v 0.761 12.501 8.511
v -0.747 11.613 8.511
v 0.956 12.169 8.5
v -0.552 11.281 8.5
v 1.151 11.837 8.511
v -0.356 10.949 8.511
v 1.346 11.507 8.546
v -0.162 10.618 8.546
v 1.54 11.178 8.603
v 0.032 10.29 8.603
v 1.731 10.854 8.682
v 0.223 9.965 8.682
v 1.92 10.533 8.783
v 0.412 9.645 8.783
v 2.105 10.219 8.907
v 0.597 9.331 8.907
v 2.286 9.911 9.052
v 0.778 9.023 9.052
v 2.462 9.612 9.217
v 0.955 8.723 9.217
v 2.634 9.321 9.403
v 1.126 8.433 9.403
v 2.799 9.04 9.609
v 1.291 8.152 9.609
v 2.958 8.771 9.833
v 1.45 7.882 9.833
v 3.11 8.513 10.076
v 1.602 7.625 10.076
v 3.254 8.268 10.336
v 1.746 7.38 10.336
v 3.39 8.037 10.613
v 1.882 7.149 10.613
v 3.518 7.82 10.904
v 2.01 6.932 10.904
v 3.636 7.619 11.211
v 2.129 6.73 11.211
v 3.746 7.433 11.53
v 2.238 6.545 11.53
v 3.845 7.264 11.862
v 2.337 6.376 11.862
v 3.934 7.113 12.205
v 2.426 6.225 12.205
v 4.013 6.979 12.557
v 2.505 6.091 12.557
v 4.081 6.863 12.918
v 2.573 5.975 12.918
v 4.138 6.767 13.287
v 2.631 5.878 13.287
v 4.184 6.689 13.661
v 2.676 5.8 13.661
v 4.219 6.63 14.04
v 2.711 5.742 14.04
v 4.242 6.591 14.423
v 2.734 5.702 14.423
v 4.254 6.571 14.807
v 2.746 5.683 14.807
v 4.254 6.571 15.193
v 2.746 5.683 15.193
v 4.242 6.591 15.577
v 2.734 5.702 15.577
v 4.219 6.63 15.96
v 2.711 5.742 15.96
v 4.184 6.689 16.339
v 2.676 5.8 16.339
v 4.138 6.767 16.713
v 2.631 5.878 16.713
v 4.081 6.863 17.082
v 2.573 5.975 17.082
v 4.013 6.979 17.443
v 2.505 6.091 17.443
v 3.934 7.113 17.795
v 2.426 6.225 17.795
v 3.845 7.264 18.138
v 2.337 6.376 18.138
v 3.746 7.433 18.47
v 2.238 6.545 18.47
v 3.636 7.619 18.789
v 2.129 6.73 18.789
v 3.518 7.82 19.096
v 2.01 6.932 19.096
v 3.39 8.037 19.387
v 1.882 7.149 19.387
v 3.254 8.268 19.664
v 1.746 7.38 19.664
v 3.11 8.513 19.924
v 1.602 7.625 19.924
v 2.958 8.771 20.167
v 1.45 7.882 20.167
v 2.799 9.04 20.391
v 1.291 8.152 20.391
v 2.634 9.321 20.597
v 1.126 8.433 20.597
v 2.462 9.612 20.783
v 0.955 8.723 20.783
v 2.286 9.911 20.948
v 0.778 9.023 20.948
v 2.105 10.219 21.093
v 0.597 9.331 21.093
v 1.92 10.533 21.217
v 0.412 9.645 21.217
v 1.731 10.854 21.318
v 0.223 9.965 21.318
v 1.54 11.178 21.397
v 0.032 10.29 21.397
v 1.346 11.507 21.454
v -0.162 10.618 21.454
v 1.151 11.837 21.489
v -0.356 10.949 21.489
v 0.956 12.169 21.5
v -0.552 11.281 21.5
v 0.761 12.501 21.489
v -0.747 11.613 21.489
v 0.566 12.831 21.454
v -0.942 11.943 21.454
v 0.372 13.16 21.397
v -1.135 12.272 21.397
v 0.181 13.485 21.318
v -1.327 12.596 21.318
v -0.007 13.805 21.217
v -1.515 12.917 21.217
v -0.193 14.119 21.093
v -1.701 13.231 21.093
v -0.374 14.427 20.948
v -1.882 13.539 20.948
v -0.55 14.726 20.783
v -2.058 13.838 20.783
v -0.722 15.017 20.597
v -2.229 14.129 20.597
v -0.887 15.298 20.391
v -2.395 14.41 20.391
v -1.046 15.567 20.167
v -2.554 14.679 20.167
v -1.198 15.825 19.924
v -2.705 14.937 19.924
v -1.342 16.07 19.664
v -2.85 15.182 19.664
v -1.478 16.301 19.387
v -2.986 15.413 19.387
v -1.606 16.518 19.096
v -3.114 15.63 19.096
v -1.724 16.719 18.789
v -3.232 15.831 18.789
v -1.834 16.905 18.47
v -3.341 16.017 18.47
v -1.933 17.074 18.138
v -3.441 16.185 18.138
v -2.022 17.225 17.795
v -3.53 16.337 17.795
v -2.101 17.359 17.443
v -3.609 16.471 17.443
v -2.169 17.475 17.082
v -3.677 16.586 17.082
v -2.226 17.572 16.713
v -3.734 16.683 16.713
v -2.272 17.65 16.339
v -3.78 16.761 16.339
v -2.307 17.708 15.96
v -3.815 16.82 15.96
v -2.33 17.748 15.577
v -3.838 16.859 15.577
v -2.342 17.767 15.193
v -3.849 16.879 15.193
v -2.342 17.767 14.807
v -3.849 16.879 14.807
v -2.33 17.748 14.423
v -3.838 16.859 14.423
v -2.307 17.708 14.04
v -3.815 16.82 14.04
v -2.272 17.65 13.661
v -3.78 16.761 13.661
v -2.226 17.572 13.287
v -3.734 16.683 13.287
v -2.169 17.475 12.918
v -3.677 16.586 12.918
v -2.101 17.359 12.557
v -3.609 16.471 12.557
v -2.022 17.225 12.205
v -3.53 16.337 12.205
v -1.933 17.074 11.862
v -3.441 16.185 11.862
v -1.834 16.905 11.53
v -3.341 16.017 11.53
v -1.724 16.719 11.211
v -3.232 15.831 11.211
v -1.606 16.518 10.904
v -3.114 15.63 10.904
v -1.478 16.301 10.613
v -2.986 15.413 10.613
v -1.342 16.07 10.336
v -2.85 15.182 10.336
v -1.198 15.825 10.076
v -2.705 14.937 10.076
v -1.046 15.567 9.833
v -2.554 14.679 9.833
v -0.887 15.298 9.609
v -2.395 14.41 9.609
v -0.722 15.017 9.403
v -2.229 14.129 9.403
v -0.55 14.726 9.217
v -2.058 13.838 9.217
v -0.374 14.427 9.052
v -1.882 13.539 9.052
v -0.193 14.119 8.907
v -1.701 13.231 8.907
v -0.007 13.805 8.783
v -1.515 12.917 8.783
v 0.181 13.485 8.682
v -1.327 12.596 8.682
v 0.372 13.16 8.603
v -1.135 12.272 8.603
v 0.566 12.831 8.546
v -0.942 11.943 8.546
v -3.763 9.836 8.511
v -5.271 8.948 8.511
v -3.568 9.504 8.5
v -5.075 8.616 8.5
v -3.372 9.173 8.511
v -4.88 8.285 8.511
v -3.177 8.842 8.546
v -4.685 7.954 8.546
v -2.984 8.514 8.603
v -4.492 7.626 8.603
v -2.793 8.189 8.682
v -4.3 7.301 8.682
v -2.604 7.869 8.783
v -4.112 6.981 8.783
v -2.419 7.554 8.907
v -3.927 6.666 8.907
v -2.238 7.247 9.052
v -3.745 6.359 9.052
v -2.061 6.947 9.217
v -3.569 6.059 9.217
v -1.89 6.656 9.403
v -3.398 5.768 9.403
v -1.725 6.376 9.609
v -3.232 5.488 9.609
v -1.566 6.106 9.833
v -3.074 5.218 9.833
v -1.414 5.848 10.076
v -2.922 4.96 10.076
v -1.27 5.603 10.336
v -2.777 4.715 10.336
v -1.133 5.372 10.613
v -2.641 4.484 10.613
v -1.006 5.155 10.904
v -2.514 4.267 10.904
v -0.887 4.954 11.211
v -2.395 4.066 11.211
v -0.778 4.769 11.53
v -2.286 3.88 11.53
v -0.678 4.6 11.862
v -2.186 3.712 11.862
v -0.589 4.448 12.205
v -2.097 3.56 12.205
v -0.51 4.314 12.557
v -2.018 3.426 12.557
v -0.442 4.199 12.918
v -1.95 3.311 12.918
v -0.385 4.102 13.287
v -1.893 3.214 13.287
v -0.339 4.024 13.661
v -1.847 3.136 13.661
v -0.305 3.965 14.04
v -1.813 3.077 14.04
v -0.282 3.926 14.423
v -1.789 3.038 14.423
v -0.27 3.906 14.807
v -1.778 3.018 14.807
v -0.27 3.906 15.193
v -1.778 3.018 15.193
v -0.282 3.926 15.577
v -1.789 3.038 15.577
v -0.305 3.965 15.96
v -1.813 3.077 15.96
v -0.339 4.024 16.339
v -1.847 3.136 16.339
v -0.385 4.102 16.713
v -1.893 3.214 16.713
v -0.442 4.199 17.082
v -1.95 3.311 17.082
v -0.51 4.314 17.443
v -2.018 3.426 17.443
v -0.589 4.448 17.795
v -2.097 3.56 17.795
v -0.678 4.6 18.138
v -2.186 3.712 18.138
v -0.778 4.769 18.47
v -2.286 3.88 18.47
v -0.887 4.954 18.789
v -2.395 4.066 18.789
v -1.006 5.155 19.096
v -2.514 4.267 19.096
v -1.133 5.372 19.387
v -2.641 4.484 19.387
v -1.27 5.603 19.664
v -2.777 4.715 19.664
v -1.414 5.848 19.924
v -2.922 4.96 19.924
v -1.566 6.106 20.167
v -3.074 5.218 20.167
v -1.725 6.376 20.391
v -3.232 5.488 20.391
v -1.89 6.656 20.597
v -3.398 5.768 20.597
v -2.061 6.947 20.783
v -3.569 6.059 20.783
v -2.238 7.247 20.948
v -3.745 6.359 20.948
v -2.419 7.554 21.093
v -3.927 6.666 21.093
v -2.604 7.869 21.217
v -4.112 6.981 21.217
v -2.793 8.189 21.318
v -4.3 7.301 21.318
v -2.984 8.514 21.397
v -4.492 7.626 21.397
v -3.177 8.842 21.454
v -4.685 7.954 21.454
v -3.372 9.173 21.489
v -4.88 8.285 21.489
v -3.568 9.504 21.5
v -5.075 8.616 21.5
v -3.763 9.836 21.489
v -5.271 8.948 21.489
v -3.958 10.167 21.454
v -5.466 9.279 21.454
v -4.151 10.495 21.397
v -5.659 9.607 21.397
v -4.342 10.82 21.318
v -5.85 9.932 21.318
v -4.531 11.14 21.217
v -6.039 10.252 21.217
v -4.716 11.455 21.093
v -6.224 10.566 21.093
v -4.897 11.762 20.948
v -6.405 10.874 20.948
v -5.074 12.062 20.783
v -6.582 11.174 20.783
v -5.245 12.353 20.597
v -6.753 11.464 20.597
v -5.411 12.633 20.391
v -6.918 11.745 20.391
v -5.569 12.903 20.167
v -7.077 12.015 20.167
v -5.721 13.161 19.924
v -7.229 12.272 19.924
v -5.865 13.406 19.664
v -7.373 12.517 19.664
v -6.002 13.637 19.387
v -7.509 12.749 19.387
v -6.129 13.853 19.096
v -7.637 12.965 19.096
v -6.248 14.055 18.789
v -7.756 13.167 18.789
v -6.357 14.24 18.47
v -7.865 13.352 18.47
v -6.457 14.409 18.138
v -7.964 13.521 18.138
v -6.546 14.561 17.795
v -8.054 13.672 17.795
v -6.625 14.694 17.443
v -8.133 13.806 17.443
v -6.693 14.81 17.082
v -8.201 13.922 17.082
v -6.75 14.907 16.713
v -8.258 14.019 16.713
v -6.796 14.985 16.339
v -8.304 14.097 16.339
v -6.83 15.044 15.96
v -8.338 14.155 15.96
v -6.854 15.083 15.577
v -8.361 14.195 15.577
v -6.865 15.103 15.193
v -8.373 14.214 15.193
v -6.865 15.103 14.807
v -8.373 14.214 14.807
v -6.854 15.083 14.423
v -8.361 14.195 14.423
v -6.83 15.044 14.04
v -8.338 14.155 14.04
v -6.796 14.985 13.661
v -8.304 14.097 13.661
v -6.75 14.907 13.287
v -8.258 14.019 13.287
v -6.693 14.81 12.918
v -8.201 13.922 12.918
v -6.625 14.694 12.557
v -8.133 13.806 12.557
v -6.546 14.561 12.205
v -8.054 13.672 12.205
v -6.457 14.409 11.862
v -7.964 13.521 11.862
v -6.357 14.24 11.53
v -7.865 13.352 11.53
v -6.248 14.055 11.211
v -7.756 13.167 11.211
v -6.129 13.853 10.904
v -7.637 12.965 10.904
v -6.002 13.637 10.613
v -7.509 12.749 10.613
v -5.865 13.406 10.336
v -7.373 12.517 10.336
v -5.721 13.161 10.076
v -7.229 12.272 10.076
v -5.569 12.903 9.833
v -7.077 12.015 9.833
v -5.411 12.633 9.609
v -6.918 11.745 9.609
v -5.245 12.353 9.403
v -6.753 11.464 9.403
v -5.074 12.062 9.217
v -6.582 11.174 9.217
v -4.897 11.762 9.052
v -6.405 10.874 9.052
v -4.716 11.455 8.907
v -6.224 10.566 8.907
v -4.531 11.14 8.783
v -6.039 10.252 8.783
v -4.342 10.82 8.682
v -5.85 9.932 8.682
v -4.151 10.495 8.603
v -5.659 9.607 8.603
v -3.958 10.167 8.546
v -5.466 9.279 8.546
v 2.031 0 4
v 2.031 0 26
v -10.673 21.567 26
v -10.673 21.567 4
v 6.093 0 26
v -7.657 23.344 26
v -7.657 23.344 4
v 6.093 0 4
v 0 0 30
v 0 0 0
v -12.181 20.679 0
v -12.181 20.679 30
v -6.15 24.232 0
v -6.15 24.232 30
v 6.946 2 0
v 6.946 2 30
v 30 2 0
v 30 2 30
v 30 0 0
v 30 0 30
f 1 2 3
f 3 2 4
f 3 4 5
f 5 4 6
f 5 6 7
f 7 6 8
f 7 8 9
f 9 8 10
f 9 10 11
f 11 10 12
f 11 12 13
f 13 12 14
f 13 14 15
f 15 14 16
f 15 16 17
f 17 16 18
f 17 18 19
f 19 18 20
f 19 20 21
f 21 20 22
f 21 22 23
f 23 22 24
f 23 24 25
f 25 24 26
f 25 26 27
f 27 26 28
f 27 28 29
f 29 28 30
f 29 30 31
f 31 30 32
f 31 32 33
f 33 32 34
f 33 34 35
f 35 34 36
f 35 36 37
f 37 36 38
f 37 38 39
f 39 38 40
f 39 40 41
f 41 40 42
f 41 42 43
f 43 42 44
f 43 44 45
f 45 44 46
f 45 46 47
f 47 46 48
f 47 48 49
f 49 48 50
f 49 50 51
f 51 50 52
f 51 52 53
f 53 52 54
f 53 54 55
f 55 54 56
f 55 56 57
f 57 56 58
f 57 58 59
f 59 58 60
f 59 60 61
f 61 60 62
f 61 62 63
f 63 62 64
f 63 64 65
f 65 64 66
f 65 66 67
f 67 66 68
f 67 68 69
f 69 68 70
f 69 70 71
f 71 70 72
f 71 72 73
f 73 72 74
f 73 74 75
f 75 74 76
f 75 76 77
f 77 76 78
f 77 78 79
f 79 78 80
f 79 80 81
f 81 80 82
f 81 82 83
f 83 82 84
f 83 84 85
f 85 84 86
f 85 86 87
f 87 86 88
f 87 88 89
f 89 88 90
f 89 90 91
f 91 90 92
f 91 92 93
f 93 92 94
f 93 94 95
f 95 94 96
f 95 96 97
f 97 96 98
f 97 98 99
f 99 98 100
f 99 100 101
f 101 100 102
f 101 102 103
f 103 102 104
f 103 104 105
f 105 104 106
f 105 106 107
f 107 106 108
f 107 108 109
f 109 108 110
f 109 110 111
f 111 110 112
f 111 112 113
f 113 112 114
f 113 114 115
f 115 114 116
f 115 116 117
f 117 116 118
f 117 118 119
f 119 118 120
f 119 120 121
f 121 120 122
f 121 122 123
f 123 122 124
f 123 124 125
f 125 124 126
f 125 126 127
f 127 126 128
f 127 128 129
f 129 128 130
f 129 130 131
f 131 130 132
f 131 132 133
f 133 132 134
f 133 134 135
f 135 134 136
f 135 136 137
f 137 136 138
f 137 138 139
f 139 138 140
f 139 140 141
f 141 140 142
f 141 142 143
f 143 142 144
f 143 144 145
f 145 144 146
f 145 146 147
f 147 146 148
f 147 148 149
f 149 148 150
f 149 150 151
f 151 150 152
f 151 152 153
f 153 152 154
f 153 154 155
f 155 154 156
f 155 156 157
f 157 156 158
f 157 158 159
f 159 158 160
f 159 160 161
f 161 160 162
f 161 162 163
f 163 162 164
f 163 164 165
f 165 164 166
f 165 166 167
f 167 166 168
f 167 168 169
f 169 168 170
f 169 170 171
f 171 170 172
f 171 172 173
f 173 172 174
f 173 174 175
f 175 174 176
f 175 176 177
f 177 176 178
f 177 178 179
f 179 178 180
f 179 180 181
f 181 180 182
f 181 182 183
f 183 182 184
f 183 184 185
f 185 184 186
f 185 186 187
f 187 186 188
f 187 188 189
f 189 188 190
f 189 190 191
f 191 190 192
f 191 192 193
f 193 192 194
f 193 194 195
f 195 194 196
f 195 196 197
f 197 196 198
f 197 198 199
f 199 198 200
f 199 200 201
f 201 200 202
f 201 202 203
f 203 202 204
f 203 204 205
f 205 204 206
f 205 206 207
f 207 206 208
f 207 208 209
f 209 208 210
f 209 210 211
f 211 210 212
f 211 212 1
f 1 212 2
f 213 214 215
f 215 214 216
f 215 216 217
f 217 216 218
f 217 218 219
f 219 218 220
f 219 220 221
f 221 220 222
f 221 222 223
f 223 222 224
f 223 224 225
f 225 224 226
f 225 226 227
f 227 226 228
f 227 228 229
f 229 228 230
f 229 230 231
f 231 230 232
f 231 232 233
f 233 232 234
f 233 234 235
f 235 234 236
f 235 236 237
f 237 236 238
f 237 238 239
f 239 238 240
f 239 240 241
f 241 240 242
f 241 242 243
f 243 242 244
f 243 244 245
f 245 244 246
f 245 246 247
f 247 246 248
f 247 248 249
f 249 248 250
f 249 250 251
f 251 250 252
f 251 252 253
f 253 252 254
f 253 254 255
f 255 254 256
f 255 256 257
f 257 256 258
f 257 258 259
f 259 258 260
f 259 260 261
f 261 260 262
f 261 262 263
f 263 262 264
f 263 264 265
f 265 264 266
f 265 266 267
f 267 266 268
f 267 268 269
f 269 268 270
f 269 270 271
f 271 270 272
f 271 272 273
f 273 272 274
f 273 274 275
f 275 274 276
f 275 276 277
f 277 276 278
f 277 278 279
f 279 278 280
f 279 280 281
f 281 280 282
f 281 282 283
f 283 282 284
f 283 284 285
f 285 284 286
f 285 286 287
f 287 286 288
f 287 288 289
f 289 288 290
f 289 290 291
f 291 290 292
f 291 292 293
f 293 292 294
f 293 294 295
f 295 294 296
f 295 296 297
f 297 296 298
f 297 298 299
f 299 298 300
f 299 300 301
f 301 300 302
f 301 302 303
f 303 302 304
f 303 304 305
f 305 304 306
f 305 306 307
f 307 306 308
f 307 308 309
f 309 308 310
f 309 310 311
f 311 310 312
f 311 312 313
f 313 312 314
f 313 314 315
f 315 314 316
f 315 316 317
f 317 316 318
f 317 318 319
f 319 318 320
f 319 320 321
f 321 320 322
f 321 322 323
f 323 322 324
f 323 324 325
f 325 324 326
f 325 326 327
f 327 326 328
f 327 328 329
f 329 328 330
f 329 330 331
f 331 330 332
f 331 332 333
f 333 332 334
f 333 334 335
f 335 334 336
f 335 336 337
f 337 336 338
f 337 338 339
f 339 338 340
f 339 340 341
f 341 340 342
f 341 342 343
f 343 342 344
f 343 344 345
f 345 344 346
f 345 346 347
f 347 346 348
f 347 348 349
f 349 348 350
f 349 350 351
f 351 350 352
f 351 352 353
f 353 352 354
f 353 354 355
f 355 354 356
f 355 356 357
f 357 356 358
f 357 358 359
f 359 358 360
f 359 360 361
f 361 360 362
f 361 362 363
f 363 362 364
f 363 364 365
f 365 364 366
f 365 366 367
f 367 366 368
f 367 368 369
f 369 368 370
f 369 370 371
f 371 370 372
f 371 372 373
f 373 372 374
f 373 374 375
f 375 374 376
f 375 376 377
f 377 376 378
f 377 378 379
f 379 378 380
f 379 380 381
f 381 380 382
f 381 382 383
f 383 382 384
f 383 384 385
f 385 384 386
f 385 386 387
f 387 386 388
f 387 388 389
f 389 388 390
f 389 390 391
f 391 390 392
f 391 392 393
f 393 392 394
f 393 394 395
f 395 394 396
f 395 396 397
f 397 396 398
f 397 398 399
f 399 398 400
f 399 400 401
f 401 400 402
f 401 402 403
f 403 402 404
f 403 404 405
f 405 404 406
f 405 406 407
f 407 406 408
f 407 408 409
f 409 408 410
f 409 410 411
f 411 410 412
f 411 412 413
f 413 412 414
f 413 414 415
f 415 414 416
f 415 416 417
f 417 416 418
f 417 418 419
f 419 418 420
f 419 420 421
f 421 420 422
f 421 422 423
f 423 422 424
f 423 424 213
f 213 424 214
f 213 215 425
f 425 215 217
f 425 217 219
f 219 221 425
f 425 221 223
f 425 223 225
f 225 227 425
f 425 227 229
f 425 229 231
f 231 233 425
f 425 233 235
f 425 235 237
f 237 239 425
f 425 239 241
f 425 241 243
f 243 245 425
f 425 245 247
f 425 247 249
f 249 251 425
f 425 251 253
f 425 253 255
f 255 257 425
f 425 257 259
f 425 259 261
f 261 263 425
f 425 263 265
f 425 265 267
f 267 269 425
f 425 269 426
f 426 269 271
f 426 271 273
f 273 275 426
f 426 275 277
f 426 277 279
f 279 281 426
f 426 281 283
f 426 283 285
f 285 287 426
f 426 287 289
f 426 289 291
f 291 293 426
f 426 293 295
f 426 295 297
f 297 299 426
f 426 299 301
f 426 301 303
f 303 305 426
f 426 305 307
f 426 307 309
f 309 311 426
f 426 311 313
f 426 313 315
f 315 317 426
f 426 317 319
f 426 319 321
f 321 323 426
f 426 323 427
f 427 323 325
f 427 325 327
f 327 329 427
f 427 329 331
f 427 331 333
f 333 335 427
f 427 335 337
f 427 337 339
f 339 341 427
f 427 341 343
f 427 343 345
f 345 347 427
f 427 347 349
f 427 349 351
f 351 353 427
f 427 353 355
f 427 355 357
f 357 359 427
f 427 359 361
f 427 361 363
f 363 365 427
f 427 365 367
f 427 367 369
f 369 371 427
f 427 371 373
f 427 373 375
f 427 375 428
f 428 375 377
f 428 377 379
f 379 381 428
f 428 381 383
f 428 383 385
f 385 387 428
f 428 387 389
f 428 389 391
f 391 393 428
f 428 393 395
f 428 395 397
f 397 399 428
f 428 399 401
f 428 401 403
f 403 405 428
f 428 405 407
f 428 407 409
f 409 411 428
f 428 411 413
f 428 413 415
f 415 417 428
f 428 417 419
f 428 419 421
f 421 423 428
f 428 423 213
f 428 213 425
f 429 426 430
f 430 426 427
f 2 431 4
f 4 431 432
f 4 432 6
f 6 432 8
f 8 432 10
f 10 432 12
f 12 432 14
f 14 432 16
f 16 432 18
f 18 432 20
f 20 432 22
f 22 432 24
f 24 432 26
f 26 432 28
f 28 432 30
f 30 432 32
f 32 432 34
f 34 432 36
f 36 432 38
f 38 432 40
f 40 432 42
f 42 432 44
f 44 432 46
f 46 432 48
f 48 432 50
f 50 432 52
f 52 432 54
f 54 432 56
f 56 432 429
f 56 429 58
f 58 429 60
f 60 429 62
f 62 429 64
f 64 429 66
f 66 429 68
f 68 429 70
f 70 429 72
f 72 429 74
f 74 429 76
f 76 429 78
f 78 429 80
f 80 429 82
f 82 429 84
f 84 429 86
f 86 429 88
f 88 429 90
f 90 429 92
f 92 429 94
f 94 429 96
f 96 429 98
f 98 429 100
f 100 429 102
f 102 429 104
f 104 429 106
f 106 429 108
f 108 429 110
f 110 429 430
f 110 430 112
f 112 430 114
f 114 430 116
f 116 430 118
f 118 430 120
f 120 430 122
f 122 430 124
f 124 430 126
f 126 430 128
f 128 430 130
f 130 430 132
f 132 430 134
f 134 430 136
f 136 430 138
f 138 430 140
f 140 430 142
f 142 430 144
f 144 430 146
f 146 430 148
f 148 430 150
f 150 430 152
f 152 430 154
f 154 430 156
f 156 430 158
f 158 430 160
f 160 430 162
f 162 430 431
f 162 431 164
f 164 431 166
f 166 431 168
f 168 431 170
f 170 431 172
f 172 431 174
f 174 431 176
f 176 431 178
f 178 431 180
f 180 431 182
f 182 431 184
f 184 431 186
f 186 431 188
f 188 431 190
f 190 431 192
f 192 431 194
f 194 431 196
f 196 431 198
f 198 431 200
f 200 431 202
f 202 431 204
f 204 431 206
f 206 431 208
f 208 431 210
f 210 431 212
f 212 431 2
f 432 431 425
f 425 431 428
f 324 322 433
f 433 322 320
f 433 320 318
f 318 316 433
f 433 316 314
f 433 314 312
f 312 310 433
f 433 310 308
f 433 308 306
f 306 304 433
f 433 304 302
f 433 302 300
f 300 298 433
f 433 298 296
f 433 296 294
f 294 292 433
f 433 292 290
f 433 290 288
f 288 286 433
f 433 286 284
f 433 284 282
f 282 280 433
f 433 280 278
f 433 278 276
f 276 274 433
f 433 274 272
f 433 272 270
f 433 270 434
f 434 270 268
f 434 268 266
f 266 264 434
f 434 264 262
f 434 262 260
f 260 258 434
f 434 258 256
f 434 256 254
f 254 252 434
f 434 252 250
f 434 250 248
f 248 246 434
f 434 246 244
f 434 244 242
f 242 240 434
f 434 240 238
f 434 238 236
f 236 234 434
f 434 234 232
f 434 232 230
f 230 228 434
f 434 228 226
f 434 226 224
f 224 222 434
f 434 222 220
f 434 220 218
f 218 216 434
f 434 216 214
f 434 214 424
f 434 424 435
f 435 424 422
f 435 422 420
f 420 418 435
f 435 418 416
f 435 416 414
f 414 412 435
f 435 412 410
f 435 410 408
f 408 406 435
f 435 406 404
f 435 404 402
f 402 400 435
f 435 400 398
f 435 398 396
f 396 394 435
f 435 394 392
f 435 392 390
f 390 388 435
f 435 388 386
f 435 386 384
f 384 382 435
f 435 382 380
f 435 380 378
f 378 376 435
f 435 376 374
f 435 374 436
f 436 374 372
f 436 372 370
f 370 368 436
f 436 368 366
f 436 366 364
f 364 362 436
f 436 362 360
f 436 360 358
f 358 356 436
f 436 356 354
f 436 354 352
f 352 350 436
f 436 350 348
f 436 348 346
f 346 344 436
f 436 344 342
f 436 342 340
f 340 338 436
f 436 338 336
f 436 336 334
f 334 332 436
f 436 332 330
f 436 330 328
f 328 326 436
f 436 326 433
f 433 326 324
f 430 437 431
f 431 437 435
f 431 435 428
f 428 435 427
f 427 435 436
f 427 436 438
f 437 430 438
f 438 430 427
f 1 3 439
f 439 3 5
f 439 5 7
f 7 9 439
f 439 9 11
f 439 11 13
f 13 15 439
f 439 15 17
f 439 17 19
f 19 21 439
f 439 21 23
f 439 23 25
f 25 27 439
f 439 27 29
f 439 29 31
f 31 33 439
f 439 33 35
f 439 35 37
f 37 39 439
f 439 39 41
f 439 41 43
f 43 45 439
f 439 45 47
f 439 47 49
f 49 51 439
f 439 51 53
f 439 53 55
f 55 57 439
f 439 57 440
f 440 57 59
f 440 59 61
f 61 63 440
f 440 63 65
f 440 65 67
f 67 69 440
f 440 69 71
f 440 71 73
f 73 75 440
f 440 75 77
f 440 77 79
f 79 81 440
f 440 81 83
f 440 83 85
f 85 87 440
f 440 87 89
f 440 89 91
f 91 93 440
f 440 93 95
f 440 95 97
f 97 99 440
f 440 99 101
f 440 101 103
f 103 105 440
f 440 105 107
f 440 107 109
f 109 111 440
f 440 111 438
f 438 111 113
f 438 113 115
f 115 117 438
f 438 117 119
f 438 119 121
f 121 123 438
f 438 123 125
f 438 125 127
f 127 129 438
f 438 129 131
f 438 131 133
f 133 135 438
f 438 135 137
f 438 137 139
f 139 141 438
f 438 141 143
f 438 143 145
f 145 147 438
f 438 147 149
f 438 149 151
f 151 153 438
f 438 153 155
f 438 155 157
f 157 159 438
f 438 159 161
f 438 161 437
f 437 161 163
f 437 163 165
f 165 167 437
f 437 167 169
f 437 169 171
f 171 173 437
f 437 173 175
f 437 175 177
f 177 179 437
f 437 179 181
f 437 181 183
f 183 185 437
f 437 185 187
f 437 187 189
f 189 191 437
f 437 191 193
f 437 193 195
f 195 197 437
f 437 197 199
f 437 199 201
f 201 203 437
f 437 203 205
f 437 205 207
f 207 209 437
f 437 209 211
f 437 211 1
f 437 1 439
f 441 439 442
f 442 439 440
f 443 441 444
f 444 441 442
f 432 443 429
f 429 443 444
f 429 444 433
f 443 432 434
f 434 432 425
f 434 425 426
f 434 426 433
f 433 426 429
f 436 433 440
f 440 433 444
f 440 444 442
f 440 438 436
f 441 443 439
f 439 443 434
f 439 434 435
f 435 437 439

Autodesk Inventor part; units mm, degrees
ref_plane "YZ Plane" through (0, 0, 0) normal (1, 0, 0) x (0, 1, 0)
ref_plane "XZ Plane" through (0, 0, 0) normal (0, 1, 0) x (-1, 0, 0)
ref_plane "XY Plane" through (0, 0, 0) normal (0, 0, 1) x (1, 0, 0)
sketch "Sketch1" plane through (0, 0, 0) normal (0, 0, 1) x (1, 0, 0)
  line L0 (0, 0) -> (30, 0)
  line L1 (0, 0) -> (-12.1809, 20.6791)
  line L2 (0, 0) -> (24, 0) construction
  line L3 (-12.1809, 20.6791) -> (-6.1495, 24.2319)
  line L4 (30, 0) -> (30, 2)
  line L5 (30, 2) -> (6.9461, 2)
  line L6 (6.9461, 2) -> (-6.1495, 24.2319)
  dimension "d0" = 30
  dimension "d1" = 24
  dimension "d2" = 120.5
  dimension "d3" = 7
  dimension "d4" = 2
extrude "Extrusion1" add sketch "Sketch1" along normal blind 30
sketch "Sketch2" plane through (-12.1809, 20.6791, 30) normal (-0.5075384, 0.8616292, 0) x (0.8616292, 0.5075384, 0)
  line L0 (1.75, 26) -> (5.25, 26)
  line L1 (5.25, 26) -> (5.25, 4)
  line L2 (5.25, 4) -> (1.75, 4)
  line L3 (1.75, 4) -> (1.75, 26)
  line L4 (7, 30) -> (7, 0) projected
  line L5 (0, 30) -> (0, 0) projected
  line L6 (7, 0) -> (0, 0) projected
  line L7 (7, 30) -> (0, 30) projected
  dimension "d7" = 22
  dimension "d8" = 3.5
  dimension "d9" = 7
  dimension "d10" = 30
  dimension "d11" = 4
  dimension "d12" = 1.75
extrude "Extrusion2" cut sketch "Sketch2" against normal through all contours L0 L1 L2 L3
sketch "Sketch3" plane through (0, 0, 0) normal (-0.8616292, -0.5075384, 0) x (0, 0, 1)
  circle A0 centre (15, 10) radius 6.5
  line L0 (30, 24) -> (30, 0) projected
  line L1 (0, 24) -> (0, 0) projected
  line L2 (0, 24) -> (30, 24) projected
  dimension "d15" = 13
  dimension "d16" = 30
  dimension "d17" = 15
  dimension "d18" = 14
extrude "Extrusion3" cut sketch "Sketch3" against normal through all
equation "\"d11\" = -0.5 * d7 + 0.5 * d10"
equation "\"d12\" = -0.5 * d8 + 0.5 * d9"
equation "\"d17\" = 0.5 * d16"
properties part number "vtail_wing_piece"
